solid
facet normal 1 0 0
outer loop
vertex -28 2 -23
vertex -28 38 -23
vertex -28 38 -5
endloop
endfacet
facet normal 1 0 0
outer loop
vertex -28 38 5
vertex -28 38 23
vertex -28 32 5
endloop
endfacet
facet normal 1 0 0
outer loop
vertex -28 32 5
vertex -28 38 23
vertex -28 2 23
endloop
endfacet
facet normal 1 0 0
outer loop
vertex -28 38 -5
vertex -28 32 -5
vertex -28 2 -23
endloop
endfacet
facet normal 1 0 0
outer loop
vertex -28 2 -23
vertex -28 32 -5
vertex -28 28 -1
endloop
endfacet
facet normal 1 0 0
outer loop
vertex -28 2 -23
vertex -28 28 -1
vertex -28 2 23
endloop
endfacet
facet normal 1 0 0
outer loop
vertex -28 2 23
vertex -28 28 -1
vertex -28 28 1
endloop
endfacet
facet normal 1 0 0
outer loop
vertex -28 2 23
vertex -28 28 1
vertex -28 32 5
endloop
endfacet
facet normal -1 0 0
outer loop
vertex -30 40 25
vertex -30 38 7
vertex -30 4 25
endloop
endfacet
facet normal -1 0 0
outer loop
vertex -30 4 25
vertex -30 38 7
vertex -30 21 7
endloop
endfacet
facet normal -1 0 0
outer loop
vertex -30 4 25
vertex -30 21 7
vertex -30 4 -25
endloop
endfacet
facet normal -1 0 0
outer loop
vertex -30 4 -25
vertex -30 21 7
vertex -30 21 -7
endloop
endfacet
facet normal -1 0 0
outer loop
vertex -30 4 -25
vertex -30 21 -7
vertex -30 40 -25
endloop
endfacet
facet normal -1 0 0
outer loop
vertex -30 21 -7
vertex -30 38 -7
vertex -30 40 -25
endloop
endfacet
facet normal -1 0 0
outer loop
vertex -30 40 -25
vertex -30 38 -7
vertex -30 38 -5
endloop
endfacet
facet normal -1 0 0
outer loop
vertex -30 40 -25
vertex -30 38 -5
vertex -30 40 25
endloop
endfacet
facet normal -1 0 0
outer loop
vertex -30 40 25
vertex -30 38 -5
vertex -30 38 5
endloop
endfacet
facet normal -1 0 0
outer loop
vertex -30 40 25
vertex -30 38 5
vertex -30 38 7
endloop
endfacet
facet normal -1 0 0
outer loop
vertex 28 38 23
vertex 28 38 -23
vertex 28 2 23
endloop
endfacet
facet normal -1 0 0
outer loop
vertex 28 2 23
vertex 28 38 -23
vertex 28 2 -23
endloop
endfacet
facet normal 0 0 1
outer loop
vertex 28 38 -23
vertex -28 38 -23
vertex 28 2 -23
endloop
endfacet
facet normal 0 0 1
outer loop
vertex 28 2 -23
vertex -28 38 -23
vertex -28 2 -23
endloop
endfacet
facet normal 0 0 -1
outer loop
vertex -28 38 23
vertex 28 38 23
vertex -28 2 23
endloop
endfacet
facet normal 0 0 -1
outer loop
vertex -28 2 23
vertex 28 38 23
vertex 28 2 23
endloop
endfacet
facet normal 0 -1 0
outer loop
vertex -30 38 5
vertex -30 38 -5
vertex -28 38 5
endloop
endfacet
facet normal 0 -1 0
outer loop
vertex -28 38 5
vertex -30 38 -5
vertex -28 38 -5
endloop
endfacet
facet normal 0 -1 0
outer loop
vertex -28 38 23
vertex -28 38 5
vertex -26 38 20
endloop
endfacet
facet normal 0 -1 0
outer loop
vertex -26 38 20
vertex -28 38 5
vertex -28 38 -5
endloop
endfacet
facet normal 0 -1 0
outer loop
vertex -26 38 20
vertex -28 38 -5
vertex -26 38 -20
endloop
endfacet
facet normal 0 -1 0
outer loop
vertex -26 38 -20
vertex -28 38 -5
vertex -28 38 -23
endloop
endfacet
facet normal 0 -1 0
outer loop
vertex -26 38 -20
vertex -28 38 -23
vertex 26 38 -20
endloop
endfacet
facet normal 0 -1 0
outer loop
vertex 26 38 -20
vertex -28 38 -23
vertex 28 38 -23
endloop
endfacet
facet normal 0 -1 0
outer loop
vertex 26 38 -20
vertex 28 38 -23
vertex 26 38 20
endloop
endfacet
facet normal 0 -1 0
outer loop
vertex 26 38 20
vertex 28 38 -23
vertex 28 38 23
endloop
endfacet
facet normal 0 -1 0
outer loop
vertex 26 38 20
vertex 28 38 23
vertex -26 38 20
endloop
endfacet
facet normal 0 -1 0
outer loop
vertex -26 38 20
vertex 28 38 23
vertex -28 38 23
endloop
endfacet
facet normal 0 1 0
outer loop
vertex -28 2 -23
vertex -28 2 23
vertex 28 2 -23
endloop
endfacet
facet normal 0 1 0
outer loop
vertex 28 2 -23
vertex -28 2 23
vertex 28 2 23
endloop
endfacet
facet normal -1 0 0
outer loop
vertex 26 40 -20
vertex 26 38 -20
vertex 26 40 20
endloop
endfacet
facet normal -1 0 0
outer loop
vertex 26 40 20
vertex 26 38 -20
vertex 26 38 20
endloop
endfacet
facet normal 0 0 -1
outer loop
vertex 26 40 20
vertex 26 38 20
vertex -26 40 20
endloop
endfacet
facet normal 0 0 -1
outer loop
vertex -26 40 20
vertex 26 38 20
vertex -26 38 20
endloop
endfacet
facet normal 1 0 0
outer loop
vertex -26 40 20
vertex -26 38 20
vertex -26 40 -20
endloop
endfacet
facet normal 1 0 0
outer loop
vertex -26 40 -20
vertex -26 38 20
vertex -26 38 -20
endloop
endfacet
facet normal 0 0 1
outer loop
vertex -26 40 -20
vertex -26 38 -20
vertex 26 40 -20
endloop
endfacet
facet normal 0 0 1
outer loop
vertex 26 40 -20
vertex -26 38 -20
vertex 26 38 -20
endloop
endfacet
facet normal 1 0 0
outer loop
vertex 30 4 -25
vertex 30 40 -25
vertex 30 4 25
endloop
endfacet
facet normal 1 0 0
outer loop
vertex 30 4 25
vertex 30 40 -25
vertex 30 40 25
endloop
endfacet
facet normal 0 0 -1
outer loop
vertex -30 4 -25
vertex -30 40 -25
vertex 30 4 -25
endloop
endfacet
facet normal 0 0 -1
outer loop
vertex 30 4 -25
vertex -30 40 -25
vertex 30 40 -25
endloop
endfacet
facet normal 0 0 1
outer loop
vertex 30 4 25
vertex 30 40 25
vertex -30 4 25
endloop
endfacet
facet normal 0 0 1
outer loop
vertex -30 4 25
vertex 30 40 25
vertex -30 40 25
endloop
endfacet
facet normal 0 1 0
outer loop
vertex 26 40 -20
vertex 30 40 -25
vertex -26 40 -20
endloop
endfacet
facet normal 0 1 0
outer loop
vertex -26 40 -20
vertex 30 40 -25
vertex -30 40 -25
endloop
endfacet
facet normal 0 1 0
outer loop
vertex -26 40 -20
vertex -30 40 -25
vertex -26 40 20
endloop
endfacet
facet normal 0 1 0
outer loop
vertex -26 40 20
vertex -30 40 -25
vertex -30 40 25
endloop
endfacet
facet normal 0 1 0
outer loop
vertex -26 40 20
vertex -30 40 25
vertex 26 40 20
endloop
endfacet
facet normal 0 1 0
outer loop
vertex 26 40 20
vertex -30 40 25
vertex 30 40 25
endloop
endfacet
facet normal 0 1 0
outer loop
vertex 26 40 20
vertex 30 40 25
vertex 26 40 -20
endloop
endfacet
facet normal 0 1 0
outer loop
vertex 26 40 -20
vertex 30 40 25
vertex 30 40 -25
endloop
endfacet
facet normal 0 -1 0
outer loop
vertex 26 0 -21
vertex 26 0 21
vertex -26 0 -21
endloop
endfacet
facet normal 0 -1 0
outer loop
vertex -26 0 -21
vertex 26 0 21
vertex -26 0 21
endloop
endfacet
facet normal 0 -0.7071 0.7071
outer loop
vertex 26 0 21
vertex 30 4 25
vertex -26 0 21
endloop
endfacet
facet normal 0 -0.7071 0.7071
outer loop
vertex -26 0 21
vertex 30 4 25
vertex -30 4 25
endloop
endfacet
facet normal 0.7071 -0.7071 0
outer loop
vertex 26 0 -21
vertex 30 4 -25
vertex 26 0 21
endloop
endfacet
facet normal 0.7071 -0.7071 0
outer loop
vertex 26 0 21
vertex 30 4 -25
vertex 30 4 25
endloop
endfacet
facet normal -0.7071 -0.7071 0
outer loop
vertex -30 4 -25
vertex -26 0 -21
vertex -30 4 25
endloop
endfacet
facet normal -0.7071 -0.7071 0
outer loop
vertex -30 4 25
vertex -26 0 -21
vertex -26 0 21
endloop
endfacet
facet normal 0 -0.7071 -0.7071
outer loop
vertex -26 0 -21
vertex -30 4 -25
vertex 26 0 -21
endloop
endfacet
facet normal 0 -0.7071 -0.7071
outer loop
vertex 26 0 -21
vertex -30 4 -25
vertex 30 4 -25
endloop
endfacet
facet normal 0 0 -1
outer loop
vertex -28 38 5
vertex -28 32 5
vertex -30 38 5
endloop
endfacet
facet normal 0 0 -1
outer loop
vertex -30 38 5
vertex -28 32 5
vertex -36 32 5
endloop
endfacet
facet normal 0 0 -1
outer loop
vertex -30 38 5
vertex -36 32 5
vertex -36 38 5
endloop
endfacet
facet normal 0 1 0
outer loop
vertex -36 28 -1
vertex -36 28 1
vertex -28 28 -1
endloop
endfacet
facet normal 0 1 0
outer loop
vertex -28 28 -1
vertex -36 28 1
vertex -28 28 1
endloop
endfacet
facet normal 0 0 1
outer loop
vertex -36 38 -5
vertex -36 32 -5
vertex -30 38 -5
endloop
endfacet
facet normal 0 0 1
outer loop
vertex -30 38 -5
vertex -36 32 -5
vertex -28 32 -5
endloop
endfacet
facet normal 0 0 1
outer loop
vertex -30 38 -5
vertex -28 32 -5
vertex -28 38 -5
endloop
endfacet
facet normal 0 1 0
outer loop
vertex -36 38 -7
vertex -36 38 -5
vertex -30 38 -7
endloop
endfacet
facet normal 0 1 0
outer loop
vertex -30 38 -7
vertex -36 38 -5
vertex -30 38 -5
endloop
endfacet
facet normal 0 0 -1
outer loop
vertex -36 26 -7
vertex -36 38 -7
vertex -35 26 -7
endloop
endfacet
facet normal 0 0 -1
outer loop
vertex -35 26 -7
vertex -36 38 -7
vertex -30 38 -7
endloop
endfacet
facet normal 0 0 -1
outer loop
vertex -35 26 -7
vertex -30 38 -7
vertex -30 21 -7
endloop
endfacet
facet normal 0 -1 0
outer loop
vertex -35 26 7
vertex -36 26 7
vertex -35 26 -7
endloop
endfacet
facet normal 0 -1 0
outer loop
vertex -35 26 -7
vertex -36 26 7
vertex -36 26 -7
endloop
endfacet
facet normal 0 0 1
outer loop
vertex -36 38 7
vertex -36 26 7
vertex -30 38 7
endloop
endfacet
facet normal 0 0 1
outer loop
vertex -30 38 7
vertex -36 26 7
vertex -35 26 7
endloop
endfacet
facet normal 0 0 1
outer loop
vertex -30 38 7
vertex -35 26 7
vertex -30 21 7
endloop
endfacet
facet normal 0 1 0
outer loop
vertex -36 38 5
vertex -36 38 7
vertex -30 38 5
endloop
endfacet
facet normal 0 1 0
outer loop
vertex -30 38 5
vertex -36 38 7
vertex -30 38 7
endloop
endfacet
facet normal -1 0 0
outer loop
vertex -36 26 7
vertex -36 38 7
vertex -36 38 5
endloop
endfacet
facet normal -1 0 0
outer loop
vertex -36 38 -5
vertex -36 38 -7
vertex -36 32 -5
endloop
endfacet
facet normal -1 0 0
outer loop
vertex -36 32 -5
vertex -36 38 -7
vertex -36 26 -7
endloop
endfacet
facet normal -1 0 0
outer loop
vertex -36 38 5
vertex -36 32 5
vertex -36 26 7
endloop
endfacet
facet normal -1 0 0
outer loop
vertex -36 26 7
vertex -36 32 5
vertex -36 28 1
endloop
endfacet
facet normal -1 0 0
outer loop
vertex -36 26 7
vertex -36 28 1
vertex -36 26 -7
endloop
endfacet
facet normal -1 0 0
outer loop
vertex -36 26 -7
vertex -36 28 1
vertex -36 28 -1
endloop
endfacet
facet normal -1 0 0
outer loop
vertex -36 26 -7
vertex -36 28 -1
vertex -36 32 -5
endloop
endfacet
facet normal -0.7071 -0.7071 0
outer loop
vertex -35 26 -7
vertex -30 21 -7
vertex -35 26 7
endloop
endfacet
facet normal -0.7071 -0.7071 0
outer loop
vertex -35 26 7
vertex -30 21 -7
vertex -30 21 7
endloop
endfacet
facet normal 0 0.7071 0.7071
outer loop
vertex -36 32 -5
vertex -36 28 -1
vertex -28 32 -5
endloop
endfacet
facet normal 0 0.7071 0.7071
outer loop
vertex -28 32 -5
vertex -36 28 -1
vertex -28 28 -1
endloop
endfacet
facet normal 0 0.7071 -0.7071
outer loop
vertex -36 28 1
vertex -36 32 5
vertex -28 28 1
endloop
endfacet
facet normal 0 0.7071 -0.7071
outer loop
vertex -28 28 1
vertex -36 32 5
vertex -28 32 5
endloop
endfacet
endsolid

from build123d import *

# Parameters (mm, degrees)
SKETCH1_W           = 60
SKETCH1_H           = 50
BOSS_EXTRUDE1_DEPTH = 40
SHELL1_T            = 2
SKETCH2_W           = 52
SKETCH2_H           = 40
CUT_EXTRUDE1_DEPTH  = 10
CHAMFER1_SIZE       = 4
SKETCH3_W           = 10
SKETCH3_H           = 10
CUT_EXTRUDE2_DEPTH  = 5
BOSS_EXTRUDE2_DEPTH = 6
CHAMFER3_SIZE       = 5
CHAMFER4_SIZE       = 4


with BuildPart() as part:
    # Sketch1 → Boss-Extrude1 (new body)
    with BuildSketch(Plane(origin=(0, 0, 0), x_dir=(1, 0, 0), z_dir=(0, 1, 0))):
        Rectangle(SKETCH1_W, SKETCH1_H)
    extrude(amount=BOSS_EXTRUDE1_DEPTH)

    # Shell1 (no face opened: a closed hollow body)
    add(offset(amount=-SHELL1_T, mode=Mode.PRIVATE), mode=Mode.SUBTRACT)

    # Sketch2 → Cut-Extrude1 (cut)
    with BuildSketch(Plane(origin=(0, 40, 0), x_dir=(1, 0, 0), z_dir=(0, 1, 0))):
        Rectangle(SKETCH2_W, SKETCH2_H)
    extrude(amount=-CUT_EXTRUDE1_DEPTH, mode=Mode.SUBTRACT)

    # Chamfer1
    chamfer1_edges = [part.edges().sort_by_distance(p)[0] for p in [
        (0, 0, 25),
        (-30, 0, 0),
        (0, 0, -25),
        (30, 0, 0),
    ]]
    chamfer(chamfer1_edges, length=CHAMFER1_SIZE)

    # Sketch3 → Cut-Extrude2 (cut)
    with BuildSketch(Plane(origin=(-30, 0, 0), x_dir=(0, 0, -1), z_dir=(1, 0, 0))):
        with Locations((0, 33)):
            Rectangle(SKETCH3_W, SKETCH3_H)
    extrude(amount=CUT_EXTRUDE2_DEPTH, mode=Mode.SUBTRACT)

    # Sketch4 → Boss-Extrude2 (add)
    with BuildSketch(Plane(origin=(-30, 0, 0), x_dir=(0, 0, -1), z_dir=(1, 0, 0))):
        Polygon((-5, 38), (-7, 38), (-7, 26), (7, 26), (7, 38), (5, 38), (5, 28), (-5, 28), align=None)
    extrude(amount=-BOSS_EXTRUDE2_DEPTH)

    # Chamfer3
    chamfer3_edges = [part.edges().sort_by_distance(p)[0] for p in [
        (-30, 26, 0),
    ]]
    chamfer(chamfer3_edges, length=CHAMFER3_SIZE)

    # Chamfer4
    chamfer4_edges = [part.edges().sort_by_distance(p)[0] for p in [
        (-32, 28, 5),
        (-32, 28, -5),
    ]]
    chamfer(chamfer4_edges, length=CHAMFER4_SIZE)


solid = part.part
